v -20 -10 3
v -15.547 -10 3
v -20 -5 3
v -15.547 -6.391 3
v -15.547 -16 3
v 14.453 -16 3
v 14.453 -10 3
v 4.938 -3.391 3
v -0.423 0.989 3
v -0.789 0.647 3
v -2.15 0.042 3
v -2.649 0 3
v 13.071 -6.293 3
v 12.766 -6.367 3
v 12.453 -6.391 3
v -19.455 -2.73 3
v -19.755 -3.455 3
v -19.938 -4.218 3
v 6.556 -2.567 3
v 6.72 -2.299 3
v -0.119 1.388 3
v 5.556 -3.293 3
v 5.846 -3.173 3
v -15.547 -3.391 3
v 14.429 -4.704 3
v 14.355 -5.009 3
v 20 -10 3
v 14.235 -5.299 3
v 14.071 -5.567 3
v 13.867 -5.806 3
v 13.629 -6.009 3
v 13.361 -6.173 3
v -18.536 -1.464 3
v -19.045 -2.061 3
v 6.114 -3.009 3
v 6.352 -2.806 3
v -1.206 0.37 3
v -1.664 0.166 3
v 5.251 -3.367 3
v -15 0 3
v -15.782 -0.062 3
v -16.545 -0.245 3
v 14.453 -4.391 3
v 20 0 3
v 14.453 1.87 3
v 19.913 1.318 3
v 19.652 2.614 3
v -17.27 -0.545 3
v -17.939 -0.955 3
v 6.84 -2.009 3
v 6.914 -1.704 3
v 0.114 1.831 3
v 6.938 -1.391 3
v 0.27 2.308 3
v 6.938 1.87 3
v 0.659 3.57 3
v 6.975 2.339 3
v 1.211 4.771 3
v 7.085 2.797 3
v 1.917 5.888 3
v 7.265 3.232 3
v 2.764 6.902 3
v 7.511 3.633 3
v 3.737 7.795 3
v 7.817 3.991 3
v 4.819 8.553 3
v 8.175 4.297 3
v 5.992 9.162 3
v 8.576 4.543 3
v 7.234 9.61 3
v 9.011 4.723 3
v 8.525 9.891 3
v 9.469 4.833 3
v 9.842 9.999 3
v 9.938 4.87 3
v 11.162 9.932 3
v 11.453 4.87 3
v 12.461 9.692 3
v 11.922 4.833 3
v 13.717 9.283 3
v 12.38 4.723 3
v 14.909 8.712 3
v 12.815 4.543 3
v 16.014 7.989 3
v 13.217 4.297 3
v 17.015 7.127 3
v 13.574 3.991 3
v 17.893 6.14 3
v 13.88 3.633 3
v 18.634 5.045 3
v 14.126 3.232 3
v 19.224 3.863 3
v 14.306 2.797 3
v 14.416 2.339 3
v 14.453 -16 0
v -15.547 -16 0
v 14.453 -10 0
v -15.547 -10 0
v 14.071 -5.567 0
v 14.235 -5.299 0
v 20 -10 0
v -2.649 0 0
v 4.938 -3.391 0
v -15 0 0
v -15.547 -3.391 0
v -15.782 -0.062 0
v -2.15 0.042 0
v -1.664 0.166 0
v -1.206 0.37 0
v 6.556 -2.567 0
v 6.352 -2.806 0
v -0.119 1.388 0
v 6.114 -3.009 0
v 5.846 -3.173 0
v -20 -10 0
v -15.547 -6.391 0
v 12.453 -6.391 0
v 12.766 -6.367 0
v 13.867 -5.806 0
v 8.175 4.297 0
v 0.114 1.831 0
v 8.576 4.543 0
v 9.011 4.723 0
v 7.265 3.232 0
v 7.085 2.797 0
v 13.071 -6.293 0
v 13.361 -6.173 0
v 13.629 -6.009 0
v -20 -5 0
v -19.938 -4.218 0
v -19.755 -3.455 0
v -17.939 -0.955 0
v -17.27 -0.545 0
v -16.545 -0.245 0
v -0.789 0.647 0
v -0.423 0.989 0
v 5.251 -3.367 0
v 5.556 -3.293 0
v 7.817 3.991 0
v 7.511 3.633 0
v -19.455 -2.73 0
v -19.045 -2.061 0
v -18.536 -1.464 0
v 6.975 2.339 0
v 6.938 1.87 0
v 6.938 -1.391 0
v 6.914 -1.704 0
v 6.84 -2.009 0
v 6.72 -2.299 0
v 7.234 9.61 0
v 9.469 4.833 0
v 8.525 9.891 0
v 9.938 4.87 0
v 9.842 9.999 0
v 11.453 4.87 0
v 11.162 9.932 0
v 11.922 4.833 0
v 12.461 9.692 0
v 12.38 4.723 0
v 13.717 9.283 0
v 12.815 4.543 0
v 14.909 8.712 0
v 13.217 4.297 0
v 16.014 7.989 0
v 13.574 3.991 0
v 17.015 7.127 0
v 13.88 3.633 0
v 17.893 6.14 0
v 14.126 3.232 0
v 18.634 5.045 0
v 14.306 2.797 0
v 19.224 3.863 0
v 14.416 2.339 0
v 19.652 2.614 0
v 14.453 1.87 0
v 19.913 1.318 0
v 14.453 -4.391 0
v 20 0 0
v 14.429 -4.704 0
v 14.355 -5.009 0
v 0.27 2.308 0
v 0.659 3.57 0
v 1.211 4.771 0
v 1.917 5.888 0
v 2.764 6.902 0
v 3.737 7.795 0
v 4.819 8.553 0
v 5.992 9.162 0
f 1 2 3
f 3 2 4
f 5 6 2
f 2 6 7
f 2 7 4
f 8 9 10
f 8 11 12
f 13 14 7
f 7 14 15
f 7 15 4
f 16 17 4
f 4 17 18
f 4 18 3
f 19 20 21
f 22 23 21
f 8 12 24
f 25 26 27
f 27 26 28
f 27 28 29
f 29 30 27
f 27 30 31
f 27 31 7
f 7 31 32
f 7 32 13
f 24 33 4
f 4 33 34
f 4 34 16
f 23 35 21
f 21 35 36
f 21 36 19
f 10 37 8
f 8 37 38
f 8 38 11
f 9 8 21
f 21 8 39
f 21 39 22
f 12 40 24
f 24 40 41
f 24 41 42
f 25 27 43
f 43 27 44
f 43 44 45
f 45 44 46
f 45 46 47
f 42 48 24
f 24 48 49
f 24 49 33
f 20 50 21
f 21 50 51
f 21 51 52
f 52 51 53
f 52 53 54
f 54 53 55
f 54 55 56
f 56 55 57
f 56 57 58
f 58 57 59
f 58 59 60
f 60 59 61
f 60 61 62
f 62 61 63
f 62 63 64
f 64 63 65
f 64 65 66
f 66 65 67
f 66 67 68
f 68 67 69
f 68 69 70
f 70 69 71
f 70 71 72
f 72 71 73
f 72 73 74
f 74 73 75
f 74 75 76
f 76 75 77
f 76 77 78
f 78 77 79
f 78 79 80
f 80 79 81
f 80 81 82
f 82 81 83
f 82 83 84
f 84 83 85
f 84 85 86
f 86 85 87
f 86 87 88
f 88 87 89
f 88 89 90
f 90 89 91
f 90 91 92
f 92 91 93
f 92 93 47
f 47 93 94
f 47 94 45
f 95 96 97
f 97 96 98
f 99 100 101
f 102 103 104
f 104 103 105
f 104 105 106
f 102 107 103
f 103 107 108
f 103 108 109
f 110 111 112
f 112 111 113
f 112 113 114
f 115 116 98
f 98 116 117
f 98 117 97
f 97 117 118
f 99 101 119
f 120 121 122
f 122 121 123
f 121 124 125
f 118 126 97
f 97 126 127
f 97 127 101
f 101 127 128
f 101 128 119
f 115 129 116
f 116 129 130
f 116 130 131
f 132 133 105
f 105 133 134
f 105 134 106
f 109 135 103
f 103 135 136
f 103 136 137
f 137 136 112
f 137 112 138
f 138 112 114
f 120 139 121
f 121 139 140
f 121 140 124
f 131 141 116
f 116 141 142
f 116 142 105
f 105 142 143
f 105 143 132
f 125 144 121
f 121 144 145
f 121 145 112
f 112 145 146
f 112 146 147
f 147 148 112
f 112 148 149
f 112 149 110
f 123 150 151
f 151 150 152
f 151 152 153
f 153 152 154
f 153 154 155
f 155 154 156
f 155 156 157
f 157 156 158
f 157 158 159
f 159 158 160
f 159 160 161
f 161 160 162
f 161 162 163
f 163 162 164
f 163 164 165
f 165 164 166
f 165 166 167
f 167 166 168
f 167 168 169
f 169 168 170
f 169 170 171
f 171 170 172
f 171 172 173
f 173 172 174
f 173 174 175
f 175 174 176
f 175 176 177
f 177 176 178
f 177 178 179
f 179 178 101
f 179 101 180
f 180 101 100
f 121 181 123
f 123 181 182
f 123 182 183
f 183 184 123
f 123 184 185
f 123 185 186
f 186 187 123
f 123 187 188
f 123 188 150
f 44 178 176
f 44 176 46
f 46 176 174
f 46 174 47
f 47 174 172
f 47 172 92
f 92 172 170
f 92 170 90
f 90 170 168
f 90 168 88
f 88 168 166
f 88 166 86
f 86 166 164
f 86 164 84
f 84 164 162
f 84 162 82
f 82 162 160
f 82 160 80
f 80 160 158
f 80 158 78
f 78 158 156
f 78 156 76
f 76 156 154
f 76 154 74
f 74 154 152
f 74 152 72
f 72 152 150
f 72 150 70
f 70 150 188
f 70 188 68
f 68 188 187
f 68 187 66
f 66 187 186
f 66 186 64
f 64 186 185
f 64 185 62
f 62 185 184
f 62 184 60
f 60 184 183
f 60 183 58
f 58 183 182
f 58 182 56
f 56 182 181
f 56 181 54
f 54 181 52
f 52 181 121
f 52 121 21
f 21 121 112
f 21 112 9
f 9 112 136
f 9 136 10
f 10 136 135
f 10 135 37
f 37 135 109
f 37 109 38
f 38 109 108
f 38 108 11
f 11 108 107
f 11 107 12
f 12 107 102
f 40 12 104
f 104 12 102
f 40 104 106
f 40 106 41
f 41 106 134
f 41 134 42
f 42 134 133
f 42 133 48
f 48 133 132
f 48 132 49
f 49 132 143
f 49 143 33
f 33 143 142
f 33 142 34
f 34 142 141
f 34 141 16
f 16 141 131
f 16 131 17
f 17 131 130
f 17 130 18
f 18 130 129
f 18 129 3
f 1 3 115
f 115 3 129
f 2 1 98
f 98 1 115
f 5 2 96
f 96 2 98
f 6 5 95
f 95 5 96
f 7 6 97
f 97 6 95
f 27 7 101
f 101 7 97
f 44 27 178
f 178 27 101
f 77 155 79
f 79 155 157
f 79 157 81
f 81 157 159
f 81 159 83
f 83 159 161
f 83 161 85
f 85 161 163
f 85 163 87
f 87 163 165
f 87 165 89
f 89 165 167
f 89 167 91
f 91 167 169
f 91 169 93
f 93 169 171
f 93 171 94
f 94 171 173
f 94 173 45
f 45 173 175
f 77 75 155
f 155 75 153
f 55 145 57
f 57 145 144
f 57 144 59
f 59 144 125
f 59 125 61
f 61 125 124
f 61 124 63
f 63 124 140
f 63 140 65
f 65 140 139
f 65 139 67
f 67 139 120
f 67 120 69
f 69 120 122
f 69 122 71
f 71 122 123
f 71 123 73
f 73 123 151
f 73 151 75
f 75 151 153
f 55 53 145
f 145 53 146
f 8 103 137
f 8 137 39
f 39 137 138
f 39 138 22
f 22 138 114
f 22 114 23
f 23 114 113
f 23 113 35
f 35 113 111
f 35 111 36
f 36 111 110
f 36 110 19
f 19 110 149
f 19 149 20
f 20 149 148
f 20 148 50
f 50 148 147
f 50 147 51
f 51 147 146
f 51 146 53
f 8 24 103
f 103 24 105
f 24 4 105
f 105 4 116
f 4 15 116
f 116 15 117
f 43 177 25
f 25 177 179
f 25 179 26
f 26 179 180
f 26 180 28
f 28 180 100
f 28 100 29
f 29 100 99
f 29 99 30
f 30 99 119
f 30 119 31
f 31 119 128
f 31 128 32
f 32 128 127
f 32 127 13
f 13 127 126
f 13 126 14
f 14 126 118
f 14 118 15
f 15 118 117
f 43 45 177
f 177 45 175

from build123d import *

# Parameters (mm, degrees)
SALIENTE_EXTRUIR1_DEPTH = 3


with BuildPart() as part:
    # Croquis1 → Saliente-Extruir1 (new body)
    with BuildSketch(Plane.XY):
        with BuildLine():
            Line((-2.649110641, 0), (-15, 0))
            ThreePointArc((-15, 0), (-18.535533906, -1.464466094), (-20, -5))
            Line((-20, -5), (-20, -10))
            Line((-20, -10), (-15.546822742, -10))
            Line((-15.546822742, -10), (-15.546822742, -16))
            Line((-15.546822742, -16), (14.453177258, -16))
            Line((14.453177258, -16), (14.453177258, -10))
            Line((14.453177258, -10), (20, -10))
            Line((20, -10), (20, 0))
            ThreePointArc((20, 0), (11.161711866, 9.932292059), (0.269914892, 2.307692308))
            ThreePointArc((0.269914892, 2.307692308), (-0.788589622, 0.646606378), (-2.649110641, 0))
        make_face()
        with BuildLine():
            Line((-15.546822742, -6.391304348), (12.453177258, -6.391304348))
            ThreePointArc((12.453177258, -6.391304348), (13.86739082, -5.80551791), (14.453177258, -4.391304348))
            Line((14.453177258, -4.391304348), (14.453177258, -3.391304348))
            Line((14.453177258, -3.391304348), (14.453177258, 1.869565217))
            ThreePointArc((14.453177258, 1.869565217), (13.574497601, 3.990885561), (11.453177258, 4.869565217))
            Line((11.453177258, 4.869565217), (9.93812709, 4.869565217))
            ThreePointArc((9.93812709, 4.869565217), (7.816806747, 3.990885561), (6.93812709, 1.869565217))
            Line((6.93812709, 1.869565217), (6.93812709, -1.391304348))
            ThreePointArc((6.93812709, -1.391304348), (6.352340653, -2.80551791), (4.93812709, -3.391304348))
            Line((4.93812709, -3.391304348), (-15.546822742, -3.391304348))
            Line((-15.546822742, -3.391304348), (-15.546822742, -6.391304348))
        make_face(mode=Mode.SUBTRACT)
    extrude(amount=SALIENTE_EXTRUIR1_DEPTH)


solid = part.part
